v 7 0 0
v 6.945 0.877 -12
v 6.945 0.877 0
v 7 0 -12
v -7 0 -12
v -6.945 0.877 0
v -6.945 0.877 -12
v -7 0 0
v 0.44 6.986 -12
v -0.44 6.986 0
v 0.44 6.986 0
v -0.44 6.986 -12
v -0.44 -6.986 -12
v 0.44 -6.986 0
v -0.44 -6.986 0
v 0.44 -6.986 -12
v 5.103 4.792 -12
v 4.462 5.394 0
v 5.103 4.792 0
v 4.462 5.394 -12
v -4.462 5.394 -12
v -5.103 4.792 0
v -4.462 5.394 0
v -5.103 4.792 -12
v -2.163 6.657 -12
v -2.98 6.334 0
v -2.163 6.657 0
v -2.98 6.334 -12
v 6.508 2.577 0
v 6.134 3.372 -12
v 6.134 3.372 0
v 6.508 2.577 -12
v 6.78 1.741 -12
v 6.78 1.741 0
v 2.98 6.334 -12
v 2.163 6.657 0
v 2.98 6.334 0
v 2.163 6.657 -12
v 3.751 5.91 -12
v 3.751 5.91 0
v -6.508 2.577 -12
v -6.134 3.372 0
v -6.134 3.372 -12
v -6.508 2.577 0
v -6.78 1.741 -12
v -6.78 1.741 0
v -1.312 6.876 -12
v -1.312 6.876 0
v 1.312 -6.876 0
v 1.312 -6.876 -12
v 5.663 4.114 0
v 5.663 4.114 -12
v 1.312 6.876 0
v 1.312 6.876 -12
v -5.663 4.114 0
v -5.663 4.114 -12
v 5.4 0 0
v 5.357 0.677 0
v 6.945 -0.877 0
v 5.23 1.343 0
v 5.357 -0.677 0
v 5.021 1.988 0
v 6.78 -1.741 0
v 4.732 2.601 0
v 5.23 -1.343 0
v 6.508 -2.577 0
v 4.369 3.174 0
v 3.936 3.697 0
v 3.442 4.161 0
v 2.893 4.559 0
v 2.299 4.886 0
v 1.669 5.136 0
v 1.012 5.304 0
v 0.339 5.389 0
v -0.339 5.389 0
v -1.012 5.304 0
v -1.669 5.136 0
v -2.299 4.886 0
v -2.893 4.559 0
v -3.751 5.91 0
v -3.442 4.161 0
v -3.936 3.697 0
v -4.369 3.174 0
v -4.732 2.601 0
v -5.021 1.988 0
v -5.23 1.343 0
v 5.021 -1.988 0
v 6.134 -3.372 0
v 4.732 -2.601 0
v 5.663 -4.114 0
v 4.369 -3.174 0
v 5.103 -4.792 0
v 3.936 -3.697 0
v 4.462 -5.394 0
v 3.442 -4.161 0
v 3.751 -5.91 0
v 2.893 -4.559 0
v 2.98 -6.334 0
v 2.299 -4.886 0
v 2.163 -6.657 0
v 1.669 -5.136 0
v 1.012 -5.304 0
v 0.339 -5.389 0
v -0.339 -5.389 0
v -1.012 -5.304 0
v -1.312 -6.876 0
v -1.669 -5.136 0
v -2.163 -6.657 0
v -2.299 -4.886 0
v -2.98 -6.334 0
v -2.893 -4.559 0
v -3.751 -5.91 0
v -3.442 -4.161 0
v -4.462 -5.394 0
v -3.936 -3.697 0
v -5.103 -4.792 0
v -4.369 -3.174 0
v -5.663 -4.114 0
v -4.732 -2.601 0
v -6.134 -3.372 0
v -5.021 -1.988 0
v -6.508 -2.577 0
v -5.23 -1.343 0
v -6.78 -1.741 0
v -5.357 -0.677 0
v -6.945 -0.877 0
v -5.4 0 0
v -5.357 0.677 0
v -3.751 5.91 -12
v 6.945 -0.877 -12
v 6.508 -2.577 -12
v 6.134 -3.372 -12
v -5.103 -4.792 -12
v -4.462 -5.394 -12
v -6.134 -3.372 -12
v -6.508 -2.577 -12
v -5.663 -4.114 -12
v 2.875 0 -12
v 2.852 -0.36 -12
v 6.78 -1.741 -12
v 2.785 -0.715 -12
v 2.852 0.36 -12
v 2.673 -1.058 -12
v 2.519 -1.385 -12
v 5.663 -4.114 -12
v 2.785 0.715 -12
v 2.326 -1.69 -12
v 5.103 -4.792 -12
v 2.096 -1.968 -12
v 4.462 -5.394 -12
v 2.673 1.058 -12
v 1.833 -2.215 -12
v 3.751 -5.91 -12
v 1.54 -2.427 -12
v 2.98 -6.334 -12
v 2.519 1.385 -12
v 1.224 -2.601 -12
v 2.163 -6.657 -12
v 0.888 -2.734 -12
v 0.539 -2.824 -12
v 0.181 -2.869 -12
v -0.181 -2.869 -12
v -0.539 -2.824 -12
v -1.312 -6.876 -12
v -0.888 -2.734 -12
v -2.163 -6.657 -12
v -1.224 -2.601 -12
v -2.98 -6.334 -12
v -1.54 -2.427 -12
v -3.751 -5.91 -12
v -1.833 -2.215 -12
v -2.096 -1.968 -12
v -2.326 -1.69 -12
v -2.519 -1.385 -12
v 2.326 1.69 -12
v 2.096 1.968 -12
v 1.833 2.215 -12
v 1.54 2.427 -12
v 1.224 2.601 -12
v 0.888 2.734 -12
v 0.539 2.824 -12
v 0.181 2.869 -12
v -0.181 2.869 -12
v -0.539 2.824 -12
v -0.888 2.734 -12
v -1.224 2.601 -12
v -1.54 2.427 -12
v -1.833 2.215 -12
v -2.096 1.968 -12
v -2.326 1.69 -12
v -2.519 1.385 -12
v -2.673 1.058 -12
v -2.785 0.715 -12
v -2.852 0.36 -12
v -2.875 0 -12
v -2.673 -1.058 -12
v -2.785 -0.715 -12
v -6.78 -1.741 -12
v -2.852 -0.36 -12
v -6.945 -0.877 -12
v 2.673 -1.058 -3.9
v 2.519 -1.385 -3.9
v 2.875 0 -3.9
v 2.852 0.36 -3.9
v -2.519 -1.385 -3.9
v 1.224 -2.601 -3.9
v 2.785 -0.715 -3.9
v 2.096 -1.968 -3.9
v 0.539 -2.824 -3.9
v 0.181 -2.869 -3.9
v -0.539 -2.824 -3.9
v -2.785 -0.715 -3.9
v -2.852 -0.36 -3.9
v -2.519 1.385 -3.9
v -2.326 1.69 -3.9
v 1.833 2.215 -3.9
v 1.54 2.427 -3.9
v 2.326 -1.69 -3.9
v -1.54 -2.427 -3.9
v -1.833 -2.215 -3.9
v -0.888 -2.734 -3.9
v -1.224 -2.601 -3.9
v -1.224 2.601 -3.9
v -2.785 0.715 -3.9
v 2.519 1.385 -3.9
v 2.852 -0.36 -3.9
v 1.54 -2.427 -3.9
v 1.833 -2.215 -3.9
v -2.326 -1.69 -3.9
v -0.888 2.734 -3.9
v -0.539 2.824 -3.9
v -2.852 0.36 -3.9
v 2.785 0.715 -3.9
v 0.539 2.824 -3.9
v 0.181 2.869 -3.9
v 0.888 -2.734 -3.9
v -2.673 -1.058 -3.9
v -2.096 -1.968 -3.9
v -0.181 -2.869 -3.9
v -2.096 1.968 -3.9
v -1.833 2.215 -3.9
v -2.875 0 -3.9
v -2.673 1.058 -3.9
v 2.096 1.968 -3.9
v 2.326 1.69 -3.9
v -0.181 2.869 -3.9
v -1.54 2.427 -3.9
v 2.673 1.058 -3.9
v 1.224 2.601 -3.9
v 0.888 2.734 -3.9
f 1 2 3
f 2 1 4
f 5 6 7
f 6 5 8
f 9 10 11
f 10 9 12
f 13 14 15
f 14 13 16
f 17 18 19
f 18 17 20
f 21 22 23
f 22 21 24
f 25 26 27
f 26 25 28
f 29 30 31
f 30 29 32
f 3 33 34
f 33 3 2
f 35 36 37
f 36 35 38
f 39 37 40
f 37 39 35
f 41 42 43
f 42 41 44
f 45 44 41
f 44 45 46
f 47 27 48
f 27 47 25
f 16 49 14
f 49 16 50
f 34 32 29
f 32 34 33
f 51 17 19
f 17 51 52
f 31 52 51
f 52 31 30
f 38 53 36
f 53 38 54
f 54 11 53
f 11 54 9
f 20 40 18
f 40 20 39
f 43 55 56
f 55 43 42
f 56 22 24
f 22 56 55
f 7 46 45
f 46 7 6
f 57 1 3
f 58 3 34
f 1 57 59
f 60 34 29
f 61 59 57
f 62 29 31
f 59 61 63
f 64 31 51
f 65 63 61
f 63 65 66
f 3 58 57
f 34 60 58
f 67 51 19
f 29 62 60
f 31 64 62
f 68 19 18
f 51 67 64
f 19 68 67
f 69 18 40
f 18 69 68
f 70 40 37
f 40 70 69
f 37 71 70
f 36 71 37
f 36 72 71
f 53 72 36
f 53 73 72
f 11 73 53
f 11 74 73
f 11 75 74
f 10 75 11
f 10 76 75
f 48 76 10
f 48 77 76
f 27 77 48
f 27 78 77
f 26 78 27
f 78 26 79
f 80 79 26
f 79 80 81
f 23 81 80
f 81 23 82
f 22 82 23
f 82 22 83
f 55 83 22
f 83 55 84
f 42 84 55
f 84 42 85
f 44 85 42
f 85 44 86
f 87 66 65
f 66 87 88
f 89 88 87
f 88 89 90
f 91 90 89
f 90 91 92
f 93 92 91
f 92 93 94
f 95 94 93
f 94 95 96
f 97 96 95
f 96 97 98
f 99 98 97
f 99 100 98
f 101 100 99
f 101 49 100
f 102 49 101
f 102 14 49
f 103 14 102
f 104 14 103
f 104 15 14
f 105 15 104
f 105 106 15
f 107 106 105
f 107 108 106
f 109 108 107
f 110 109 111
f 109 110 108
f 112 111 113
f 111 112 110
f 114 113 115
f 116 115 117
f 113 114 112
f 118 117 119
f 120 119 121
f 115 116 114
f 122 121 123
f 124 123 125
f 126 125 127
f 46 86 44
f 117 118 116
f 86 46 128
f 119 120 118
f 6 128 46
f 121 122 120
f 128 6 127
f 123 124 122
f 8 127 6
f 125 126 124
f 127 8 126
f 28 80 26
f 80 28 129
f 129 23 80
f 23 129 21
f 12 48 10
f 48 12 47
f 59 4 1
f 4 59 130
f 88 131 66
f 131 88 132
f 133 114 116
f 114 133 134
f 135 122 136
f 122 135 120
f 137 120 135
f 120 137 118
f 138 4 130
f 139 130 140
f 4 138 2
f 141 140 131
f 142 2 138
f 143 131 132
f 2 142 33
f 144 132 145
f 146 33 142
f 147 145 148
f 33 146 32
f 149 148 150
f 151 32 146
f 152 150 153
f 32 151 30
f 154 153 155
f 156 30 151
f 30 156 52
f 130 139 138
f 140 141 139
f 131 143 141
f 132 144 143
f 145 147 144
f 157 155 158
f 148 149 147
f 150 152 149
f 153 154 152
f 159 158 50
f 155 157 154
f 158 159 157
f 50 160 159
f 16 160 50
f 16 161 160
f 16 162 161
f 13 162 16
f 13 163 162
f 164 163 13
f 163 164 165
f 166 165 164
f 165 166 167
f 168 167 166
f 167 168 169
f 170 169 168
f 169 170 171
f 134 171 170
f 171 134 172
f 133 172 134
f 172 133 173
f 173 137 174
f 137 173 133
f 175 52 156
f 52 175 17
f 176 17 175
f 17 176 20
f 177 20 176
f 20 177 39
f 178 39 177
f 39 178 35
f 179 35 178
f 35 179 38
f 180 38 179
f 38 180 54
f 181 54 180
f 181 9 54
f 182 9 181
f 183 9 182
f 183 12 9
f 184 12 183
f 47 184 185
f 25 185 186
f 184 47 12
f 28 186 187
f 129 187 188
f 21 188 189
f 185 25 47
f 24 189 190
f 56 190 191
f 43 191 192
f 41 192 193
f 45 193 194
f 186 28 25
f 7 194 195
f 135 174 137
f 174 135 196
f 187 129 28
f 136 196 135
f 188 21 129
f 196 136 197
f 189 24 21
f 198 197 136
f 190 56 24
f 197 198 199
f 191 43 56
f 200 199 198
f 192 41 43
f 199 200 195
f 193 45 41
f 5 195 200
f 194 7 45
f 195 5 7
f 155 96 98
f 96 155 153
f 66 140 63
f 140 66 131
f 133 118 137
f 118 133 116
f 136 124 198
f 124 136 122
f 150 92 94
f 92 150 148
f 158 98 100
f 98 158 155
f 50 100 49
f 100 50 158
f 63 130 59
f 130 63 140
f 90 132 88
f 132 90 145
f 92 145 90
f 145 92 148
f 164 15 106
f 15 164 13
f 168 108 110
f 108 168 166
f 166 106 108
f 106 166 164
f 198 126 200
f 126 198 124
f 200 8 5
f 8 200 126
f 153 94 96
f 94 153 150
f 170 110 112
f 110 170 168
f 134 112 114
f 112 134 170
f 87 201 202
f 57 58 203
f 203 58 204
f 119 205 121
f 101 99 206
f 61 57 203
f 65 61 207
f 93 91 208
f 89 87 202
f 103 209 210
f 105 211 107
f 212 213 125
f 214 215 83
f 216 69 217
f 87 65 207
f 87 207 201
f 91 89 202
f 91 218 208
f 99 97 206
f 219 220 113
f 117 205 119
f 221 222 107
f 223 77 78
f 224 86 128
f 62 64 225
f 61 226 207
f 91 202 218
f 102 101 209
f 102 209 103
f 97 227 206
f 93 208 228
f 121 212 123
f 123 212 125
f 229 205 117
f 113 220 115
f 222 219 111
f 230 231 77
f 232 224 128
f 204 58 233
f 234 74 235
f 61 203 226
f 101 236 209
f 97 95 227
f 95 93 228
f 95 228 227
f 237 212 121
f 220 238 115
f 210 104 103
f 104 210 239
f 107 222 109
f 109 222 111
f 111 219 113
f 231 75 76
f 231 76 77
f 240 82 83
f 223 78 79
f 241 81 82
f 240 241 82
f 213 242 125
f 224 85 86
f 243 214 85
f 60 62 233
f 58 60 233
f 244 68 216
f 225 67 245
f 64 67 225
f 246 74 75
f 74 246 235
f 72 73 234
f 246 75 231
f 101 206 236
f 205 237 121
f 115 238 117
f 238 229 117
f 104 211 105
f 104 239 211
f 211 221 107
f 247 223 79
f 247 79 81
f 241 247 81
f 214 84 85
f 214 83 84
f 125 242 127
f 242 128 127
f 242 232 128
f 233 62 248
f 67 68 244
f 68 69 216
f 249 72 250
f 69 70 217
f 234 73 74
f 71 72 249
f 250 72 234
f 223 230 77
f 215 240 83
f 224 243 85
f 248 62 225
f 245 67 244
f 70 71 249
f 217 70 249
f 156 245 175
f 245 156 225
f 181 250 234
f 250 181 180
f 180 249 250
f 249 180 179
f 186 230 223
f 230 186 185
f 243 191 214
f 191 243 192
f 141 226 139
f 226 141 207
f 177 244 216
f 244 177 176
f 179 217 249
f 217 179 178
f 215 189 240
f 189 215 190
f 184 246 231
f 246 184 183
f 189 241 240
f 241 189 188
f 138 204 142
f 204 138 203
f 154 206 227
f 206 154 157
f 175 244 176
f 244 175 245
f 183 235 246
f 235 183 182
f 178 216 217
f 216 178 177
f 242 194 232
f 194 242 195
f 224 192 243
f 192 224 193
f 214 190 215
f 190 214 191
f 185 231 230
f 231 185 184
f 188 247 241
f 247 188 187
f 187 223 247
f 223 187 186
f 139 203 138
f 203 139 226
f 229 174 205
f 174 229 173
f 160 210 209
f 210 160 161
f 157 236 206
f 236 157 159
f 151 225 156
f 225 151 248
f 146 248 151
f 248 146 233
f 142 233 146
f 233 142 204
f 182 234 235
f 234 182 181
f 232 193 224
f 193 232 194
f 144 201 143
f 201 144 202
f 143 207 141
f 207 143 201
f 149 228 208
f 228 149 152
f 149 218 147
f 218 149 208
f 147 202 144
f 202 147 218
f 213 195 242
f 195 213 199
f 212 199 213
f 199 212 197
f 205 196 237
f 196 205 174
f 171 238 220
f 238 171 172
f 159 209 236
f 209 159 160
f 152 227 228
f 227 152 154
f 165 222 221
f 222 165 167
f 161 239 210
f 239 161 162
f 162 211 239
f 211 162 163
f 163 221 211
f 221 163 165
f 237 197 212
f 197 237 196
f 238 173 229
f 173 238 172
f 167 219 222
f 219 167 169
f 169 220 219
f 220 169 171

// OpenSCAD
$fn = 50;


difference() {
	union() {
		translate(v = [0, 0, -12.0000000000]) {
			cylinder(h = 12, r = 7.0000000000);
		}
		translate(v = [0, 0, -12.0000000000]) {
			cylinder(h = 12, r = 2.8750000000);
		}
	}
	union() {
		translate(v = [0, 0, 0]) {
			rotate(a = [0, 0, 0]) {
				difference() {
					union() {
						translate(v = [0, 0, -12.0000000000]) {
							cylinder(h = 12, r = 2.6000000000);
						}
						translate(v = [0, 0, -3.9000000000]) {
							cylinder(h = 3.9000000000, r1 = 2.8750000000, r2 = 5.4000000000);
						}
						translate(v = [0, 0, -12.0000000000]) {
							cylinder(h = 12, r = 2.8750000000);
						}
						translate(v = [0, 0, -12.0000000000]) {
							cylinder(h = 12, r = 2.6000000000);
						}
					}
					union();
				}
			}
		}
	}
}
